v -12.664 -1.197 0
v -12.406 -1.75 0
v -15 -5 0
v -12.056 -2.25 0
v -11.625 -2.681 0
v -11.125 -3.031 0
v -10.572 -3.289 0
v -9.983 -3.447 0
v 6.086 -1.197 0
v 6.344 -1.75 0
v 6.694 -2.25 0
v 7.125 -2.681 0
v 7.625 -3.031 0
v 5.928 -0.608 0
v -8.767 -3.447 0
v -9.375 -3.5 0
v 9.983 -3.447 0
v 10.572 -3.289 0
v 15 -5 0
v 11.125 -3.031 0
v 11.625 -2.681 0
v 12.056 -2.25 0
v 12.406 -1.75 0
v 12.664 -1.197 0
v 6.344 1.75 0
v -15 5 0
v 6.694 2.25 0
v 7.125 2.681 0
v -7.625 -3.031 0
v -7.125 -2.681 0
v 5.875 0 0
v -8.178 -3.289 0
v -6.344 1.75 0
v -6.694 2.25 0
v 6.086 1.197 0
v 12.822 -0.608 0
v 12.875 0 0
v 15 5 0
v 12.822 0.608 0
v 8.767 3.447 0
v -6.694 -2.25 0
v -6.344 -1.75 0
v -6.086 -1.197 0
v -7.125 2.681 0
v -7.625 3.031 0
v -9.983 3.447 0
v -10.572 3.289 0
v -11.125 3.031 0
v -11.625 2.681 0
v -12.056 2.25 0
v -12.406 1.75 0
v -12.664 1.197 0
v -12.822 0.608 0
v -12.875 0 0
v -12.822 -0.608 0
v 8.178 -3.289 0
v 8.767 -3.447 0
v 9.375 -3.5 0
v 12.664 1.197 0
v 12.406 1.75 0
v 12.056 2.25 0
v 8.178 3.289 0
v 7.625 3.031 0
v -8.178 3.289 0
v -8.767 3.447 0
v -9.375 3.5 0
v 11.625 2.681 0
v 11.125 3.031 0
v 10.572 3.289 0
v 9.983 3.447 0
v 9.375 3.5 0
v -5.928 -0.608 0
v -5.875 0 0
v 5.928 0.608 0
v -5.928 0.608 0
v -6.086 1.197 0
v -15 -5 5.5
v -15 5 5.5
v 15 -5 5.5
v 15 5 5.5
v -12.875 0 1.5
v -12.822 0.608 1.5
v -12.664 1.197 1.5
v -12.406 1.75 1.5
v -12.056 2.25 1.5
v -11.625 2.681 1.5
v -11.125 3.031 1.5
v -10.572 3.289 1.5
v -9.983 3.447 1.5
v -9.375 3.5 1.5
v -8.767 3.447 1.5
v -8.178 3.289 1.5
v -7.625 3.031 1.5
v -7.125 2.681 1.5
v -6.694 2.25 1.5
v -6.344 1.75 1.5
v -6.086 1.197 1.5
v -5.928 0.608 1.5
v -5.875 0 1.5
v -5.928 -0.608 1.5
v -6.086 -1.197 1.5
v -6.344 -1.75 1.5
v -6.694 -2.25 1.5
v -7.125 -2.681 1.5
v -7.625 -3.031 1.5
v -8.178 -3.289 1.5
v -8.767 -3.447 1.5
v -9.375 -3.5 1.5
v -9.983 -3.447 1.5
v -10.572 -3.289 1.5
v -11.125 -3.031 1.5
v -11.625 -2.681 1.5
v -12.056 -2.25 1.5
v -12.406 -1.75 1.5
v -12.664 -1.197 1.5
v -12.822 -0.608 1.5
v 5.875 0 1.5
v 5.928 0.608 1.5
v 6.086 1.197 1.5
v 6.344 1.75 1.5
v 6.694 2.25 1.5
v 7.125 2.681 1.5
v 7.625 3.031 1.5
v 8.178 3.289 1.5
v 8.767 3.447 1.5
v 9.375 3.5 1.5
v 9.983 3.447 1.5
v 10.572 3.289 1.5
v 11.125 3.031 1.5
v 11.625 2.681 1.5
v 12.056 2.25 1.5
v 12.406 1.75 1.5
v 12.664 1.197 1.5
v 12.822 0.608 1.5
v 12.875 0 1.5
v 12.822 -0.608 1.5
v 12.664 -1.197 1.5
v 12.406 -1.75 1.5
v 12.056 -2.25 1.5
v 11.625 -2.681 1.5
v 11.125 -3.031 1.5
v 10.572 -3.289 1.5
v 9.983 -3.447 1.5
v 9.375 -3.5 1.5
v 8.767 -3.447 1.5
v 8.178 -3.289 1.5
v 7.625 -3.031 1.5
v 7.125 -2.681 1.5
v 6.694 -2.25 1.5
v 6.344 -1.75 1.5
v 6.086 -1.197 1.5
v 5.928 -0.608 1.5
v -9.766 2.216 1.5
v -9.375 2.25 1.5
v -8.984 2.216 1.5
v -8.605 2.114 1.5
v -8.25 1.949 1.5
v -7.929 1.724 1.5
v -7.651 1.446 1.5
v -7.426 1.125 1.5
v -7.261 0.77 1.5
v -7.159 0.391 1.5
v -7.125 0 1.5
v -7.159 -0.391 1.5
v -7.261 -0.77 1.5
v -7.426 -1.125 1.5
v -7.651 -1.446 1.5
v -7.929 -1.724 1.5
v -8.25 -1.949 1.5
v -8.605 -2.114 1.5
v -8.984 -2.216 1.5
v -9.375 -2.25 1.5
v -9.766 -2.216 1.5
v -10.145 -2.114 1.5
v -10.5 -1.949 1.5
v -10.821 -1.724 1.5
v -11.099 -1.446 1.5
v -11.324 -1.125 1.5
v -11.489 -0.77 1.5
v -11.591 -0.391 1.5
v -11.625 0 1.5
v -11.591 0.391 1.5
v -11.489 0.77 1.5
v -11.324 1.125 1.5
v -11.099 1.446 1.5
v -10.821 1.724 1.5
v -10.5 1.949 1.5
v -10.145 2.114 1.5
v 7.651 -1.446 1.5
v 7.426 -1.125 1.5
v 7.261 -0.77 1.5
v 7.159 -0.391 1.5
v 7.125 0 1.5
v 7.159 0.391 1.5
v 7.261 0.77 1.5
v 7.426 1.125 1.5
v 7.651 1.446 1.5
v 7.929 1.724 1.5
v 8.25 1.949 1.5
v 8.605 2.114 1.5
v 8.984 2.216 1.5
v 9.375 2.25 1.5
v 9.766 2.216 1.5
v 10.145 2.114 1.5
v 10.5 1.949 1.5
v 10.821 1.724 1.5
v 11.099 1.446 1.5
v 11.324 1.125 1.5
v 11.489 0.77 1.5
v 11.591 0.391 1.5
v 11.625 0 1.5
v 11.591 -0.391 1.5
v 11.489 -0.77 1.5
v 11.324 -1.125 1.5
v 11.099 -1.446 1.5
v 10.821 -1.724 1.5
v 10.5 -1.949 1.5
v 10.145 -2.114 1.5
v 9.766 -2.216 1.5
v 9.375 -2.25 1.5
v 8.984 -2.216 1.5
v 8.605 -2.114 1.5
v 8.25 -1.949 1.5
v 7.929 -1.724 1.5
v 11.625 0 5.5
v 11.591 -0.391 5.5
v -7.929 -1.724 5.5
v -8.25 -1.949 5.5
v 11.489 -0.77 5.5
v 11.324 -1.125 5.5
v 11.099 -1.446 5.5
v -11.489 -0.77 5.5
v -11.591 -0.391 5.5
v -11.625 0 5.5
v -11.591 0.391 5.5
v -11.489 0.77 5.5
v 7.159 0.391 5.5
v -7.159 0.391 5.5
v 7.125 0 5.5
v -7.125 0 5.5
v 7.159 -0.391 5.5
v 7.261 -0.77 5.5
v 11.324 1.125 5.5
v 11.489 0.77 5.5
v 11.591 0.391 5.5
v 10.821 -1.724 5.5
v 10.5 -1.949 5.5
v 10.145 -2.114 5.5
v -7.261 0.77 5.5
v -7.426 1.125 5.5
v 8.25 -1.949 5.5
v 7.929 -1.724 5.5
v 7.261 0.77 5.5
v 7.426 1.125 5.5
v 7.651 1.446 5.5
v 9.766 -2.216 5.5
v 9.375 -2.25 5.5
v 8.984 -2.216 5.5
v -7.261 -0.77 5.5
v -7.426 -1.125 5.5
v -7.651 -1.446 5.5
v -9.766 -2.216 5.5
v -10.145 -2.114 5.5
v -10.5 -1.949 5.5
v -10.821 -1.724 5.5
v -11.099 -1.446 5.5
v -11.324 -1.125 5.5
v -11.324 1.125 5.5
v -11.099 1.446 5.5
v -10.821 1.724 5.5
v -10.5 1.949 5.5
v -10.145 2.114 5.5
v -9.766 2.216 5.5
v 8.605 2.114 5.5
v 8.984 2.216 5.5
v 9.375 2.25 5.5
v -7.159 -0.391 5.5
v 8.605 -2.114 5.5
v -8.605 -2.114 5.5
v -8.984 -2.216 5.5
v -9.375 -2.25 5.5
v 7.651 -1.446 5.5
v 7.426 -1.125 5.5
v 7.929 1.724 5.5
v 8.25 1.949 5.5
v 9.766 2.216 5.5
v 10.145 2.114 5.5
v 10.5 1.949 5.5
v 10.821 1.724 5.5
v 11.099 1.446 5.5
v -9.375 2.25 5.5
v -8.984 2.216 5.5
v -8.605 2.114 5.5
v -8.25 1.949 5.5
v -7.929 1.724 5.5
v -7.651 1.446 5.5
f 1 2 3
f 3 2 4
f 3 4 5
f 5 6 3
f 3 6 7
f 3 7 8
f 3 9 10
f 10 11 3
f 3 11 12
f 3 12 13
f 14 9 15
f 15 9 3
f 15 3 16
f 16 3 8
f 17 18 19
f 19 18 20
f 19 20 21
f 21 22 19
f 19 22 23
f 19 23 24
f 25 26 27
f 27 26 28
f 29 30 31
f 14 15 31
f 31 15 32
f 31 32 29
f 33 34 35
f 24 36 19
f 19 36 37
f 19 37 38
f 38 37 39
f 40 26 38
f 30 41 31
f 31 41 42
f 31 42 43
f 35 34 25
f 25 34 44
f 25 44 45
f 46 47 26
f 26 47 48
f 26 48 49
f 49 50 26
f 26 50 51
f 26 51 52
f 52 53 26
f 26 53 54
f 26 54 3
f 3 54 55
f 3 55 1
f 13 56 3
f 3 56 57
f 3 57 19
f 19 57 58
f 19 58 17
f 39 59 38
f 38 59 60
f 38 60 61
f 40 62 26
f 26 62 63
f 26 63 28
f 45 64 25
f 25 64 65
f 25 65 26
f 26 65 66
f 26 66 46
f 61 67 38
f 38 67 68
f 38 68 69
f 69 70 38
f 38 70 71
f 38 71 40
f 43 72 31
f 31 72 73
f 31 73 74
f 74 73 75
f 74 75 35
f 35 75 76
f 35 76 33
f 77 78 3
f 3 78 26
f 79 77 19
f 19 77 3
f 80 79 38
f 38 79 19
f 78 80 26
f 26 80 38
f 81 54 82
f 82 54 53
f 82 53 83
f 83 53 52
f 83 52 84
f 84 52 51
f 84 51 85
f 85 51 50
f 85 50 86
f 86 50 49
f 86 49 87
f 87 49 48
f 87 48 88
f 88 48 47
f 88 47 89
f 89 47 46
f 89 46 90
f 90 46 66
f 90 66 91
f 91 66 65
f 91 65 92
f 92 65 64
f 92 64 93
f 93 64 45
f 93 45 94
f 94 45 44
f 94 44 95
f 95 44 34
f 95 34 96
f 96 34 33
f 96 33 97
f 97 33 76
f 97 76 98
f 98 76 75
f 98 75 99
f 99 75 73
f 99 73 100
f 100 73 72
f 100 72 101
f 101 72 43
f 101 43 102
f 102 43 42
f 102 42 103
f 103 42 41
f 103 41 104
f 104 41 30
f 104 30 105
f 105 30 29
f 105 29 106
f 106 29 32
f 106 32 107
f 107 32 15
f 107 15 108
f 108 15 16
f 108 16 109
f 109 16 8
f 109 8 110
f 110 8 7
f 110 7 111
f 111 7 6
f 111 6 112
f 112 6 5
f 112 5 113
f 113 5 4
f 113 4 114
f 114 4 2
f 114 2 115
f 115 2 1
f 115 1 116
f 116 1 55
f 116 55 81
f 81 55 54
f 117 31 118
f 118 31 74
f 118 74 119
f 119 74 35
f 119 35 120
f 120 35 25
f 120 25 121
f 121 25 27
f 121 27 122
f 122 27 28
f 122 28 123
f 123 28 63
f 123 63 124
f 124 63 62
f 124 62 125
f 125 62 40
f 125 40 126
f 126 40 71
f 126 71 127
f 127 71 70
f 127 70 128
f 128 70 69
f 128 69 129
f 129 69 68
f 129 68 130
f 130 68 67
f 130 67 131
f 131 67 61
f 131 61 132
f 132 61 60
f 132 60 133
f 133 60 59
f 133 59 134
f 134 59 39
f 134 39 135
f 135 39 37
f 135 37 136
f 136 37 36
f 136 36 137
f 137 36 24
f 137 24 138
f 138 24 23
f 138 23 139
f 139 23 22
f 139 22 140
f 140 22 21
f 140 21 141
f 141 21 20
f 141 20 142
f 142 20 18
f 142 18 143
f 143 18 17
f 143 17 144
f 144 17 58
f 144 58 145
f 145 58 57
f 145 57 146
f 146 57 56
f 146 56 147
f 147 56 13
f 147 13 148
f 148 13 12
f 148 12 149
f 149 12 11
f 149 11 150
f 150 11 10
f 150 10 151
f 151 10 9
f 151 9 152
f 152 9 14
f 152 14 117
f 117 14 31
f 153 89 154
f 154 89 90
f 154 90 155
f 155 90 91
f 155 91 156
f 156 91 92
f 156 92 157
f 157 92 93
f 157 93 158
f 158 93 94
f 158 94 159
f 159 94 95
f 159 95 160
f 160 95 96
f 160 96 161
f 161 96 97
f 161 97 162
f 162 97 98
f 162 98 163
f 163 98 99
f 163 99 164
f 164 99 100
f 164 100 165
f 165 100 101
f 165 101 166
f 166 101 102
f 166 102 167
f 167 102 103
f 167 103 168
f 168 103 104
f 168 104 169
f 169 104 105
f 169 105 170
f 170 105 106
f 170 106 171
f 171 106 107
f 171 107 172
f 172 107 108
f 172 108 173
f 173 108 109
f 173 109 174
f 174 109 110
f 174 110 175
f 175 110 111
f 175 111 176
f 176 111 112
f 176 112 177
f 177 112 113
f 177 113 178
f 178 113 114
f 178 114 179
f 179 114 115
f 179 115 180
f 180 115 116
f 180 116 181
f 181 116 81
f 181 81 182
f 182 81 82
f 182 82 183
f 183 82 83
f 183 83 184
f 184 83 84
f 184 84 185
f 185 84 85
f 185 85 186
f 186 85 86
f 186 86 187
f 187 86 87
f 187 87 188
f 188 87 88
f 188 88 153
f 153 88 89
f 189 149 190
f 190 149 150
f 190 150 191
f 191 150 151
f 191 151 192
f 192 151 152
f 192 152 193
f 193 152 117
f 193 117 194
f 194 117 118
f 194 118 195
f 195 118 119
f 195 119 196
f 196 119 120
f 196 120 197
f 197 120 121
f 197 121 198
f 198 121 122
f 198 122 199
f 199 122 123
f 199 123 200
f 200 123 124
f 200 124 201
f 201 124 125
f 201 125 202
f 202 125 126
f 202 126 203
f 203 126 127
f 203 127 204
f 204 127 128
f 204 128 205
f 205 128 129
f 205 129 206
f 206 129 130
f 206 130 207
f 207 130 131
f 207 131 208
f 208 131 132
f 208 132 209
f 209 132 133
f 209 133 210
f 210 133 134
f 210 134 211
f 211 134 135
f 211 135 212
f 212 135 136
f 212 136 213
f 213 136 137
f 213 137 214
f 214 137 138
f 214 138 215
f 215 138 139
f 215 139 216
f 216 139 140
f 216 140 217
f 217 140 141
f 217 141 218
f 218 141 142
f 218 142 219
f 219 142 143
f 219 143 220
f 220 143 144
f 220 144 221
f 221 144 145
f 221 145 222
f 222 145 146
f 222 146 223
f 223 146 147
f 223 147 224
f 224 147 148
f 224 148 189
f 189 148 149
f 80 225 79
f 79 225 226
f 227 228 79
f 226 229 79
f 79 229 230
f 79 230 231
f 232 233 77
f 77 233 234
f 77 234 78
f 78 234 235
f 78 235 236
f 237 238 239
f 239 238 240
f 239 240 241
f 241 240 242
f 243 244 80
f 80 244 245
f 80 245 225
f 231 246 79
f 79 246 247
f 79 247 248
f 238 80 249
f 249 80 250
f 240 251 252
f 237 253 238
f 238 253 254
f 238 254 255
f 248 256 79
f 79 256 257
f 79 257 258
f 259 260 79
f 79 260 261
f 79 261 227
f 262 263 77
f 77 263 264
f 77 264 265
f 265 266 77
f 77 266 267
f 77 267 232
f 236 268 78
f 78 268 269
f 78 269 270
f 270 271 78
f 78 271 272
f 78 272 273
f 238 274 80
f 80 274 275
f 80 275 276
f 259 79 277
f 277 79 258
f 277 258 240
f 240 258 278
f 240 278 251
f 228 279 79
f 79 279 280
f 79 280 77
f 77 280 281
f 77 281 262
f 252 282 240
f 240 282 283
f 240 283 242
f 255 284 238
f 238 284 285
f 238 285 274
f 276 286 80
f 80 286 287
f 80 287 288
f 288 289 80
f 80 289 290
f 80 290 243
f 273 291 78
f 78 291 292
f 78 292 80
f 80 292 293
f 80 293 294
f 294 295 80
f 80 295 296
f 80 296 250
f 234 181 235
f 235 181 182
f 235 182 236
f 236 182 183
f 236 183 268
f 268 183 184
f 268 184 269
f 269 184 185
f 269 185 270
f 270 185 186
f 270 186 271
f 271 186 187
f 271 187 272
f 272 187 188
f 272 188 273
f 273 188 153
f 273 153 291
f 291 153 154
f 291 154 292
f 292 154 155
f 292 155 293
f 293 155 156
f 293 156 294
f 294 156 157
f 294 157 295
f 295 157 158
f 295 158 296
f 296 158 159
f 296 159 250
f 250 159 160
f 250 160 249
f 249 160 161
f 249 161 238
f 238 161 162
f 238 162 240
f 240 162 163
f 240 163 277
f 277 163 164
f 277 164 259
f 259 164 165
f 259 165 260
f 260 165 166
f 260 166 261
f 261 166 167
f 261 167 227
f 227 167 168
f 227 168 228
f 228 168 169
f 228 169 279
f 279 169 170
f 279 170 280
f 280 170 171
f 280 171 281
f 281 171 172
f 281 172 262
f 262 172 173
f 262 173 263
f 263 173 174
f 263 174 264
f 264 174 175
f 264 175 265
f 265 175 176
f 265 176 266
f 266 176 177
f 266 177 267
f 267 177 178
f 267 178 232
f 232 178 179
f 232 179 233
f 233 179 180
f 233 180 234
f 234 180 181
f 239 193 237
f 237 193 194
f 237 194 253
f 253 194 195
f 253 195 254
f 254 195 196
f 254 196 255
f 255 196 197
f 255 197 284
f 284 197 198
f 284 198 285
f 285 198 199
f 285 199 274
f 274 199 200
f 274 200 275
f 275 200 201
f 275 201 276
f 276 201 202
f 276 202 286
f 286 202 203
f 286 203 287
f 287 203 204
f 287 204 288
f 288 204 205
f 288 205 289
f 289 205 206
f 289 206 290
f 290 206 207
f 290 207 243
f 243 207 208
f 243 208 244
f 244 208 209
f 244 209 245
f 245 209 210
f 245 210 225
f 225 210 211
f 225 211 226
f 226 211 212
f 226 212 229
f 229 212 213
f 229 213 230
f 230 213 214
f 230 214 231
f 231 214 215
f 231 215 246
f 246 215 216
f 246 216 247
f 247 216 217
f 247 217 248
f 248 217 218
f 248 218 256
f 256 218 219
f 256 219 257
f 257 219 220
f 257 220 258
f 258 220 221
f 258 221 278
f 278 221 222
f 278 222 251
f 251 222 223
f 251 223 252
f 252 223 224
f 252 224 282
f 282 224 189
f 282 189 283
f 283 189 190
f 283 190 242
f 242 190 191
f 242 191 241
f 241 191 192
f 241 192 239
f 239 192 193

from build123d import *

# Parameters (mm, degrees)
SKETCH1_W           = 30
SKETCH1_H           = 10
SKETCH1_R           = 3.5
BOSS_EXTRUDE1_DEPTH = 1.5
SKETCH2_W           = 30
SKETCH2_H           = 10
SKETCH2_R           = 2.25
BOSS_EXTRUDE2_DEPTH = 4


with BuildPart() as part:
    # Sketch1 → Boss-Extrude1 (new body)
    with BuildSketch(Plane.XY):
        Rectangle(SKETCH1_W, SKETCH1_H)
        with Locations((-9.375, 0)):
            Circle(SKETCH1_R, mode=Mode.SUBTRACT)
        with Locations((9.375, 0)):
            Circle(SKETCH1_R, mode=Mode.SUBTRACT)
    extrude(amount=BOSS_EXTRUDE1_DEPTH)

    # Sketch2 → Boss-Extrude2 (add)
    with BuildSketch(Plane.XY.offset(1.5)):
        Rectangle(SKETCH2_W, SKETCH2_H)
        with Locations((-9.375, 0)):
            Circle(SKETCH2_R, mode=Mode.SUBTRACT)
        with Locations((9.375, 0)):
            Circle(SKETCH2_R, mode=Mode.SUBTRACT)
    extrude(amount=BOSS_EXTRUDE2_DEPTH)


solid = part.part
